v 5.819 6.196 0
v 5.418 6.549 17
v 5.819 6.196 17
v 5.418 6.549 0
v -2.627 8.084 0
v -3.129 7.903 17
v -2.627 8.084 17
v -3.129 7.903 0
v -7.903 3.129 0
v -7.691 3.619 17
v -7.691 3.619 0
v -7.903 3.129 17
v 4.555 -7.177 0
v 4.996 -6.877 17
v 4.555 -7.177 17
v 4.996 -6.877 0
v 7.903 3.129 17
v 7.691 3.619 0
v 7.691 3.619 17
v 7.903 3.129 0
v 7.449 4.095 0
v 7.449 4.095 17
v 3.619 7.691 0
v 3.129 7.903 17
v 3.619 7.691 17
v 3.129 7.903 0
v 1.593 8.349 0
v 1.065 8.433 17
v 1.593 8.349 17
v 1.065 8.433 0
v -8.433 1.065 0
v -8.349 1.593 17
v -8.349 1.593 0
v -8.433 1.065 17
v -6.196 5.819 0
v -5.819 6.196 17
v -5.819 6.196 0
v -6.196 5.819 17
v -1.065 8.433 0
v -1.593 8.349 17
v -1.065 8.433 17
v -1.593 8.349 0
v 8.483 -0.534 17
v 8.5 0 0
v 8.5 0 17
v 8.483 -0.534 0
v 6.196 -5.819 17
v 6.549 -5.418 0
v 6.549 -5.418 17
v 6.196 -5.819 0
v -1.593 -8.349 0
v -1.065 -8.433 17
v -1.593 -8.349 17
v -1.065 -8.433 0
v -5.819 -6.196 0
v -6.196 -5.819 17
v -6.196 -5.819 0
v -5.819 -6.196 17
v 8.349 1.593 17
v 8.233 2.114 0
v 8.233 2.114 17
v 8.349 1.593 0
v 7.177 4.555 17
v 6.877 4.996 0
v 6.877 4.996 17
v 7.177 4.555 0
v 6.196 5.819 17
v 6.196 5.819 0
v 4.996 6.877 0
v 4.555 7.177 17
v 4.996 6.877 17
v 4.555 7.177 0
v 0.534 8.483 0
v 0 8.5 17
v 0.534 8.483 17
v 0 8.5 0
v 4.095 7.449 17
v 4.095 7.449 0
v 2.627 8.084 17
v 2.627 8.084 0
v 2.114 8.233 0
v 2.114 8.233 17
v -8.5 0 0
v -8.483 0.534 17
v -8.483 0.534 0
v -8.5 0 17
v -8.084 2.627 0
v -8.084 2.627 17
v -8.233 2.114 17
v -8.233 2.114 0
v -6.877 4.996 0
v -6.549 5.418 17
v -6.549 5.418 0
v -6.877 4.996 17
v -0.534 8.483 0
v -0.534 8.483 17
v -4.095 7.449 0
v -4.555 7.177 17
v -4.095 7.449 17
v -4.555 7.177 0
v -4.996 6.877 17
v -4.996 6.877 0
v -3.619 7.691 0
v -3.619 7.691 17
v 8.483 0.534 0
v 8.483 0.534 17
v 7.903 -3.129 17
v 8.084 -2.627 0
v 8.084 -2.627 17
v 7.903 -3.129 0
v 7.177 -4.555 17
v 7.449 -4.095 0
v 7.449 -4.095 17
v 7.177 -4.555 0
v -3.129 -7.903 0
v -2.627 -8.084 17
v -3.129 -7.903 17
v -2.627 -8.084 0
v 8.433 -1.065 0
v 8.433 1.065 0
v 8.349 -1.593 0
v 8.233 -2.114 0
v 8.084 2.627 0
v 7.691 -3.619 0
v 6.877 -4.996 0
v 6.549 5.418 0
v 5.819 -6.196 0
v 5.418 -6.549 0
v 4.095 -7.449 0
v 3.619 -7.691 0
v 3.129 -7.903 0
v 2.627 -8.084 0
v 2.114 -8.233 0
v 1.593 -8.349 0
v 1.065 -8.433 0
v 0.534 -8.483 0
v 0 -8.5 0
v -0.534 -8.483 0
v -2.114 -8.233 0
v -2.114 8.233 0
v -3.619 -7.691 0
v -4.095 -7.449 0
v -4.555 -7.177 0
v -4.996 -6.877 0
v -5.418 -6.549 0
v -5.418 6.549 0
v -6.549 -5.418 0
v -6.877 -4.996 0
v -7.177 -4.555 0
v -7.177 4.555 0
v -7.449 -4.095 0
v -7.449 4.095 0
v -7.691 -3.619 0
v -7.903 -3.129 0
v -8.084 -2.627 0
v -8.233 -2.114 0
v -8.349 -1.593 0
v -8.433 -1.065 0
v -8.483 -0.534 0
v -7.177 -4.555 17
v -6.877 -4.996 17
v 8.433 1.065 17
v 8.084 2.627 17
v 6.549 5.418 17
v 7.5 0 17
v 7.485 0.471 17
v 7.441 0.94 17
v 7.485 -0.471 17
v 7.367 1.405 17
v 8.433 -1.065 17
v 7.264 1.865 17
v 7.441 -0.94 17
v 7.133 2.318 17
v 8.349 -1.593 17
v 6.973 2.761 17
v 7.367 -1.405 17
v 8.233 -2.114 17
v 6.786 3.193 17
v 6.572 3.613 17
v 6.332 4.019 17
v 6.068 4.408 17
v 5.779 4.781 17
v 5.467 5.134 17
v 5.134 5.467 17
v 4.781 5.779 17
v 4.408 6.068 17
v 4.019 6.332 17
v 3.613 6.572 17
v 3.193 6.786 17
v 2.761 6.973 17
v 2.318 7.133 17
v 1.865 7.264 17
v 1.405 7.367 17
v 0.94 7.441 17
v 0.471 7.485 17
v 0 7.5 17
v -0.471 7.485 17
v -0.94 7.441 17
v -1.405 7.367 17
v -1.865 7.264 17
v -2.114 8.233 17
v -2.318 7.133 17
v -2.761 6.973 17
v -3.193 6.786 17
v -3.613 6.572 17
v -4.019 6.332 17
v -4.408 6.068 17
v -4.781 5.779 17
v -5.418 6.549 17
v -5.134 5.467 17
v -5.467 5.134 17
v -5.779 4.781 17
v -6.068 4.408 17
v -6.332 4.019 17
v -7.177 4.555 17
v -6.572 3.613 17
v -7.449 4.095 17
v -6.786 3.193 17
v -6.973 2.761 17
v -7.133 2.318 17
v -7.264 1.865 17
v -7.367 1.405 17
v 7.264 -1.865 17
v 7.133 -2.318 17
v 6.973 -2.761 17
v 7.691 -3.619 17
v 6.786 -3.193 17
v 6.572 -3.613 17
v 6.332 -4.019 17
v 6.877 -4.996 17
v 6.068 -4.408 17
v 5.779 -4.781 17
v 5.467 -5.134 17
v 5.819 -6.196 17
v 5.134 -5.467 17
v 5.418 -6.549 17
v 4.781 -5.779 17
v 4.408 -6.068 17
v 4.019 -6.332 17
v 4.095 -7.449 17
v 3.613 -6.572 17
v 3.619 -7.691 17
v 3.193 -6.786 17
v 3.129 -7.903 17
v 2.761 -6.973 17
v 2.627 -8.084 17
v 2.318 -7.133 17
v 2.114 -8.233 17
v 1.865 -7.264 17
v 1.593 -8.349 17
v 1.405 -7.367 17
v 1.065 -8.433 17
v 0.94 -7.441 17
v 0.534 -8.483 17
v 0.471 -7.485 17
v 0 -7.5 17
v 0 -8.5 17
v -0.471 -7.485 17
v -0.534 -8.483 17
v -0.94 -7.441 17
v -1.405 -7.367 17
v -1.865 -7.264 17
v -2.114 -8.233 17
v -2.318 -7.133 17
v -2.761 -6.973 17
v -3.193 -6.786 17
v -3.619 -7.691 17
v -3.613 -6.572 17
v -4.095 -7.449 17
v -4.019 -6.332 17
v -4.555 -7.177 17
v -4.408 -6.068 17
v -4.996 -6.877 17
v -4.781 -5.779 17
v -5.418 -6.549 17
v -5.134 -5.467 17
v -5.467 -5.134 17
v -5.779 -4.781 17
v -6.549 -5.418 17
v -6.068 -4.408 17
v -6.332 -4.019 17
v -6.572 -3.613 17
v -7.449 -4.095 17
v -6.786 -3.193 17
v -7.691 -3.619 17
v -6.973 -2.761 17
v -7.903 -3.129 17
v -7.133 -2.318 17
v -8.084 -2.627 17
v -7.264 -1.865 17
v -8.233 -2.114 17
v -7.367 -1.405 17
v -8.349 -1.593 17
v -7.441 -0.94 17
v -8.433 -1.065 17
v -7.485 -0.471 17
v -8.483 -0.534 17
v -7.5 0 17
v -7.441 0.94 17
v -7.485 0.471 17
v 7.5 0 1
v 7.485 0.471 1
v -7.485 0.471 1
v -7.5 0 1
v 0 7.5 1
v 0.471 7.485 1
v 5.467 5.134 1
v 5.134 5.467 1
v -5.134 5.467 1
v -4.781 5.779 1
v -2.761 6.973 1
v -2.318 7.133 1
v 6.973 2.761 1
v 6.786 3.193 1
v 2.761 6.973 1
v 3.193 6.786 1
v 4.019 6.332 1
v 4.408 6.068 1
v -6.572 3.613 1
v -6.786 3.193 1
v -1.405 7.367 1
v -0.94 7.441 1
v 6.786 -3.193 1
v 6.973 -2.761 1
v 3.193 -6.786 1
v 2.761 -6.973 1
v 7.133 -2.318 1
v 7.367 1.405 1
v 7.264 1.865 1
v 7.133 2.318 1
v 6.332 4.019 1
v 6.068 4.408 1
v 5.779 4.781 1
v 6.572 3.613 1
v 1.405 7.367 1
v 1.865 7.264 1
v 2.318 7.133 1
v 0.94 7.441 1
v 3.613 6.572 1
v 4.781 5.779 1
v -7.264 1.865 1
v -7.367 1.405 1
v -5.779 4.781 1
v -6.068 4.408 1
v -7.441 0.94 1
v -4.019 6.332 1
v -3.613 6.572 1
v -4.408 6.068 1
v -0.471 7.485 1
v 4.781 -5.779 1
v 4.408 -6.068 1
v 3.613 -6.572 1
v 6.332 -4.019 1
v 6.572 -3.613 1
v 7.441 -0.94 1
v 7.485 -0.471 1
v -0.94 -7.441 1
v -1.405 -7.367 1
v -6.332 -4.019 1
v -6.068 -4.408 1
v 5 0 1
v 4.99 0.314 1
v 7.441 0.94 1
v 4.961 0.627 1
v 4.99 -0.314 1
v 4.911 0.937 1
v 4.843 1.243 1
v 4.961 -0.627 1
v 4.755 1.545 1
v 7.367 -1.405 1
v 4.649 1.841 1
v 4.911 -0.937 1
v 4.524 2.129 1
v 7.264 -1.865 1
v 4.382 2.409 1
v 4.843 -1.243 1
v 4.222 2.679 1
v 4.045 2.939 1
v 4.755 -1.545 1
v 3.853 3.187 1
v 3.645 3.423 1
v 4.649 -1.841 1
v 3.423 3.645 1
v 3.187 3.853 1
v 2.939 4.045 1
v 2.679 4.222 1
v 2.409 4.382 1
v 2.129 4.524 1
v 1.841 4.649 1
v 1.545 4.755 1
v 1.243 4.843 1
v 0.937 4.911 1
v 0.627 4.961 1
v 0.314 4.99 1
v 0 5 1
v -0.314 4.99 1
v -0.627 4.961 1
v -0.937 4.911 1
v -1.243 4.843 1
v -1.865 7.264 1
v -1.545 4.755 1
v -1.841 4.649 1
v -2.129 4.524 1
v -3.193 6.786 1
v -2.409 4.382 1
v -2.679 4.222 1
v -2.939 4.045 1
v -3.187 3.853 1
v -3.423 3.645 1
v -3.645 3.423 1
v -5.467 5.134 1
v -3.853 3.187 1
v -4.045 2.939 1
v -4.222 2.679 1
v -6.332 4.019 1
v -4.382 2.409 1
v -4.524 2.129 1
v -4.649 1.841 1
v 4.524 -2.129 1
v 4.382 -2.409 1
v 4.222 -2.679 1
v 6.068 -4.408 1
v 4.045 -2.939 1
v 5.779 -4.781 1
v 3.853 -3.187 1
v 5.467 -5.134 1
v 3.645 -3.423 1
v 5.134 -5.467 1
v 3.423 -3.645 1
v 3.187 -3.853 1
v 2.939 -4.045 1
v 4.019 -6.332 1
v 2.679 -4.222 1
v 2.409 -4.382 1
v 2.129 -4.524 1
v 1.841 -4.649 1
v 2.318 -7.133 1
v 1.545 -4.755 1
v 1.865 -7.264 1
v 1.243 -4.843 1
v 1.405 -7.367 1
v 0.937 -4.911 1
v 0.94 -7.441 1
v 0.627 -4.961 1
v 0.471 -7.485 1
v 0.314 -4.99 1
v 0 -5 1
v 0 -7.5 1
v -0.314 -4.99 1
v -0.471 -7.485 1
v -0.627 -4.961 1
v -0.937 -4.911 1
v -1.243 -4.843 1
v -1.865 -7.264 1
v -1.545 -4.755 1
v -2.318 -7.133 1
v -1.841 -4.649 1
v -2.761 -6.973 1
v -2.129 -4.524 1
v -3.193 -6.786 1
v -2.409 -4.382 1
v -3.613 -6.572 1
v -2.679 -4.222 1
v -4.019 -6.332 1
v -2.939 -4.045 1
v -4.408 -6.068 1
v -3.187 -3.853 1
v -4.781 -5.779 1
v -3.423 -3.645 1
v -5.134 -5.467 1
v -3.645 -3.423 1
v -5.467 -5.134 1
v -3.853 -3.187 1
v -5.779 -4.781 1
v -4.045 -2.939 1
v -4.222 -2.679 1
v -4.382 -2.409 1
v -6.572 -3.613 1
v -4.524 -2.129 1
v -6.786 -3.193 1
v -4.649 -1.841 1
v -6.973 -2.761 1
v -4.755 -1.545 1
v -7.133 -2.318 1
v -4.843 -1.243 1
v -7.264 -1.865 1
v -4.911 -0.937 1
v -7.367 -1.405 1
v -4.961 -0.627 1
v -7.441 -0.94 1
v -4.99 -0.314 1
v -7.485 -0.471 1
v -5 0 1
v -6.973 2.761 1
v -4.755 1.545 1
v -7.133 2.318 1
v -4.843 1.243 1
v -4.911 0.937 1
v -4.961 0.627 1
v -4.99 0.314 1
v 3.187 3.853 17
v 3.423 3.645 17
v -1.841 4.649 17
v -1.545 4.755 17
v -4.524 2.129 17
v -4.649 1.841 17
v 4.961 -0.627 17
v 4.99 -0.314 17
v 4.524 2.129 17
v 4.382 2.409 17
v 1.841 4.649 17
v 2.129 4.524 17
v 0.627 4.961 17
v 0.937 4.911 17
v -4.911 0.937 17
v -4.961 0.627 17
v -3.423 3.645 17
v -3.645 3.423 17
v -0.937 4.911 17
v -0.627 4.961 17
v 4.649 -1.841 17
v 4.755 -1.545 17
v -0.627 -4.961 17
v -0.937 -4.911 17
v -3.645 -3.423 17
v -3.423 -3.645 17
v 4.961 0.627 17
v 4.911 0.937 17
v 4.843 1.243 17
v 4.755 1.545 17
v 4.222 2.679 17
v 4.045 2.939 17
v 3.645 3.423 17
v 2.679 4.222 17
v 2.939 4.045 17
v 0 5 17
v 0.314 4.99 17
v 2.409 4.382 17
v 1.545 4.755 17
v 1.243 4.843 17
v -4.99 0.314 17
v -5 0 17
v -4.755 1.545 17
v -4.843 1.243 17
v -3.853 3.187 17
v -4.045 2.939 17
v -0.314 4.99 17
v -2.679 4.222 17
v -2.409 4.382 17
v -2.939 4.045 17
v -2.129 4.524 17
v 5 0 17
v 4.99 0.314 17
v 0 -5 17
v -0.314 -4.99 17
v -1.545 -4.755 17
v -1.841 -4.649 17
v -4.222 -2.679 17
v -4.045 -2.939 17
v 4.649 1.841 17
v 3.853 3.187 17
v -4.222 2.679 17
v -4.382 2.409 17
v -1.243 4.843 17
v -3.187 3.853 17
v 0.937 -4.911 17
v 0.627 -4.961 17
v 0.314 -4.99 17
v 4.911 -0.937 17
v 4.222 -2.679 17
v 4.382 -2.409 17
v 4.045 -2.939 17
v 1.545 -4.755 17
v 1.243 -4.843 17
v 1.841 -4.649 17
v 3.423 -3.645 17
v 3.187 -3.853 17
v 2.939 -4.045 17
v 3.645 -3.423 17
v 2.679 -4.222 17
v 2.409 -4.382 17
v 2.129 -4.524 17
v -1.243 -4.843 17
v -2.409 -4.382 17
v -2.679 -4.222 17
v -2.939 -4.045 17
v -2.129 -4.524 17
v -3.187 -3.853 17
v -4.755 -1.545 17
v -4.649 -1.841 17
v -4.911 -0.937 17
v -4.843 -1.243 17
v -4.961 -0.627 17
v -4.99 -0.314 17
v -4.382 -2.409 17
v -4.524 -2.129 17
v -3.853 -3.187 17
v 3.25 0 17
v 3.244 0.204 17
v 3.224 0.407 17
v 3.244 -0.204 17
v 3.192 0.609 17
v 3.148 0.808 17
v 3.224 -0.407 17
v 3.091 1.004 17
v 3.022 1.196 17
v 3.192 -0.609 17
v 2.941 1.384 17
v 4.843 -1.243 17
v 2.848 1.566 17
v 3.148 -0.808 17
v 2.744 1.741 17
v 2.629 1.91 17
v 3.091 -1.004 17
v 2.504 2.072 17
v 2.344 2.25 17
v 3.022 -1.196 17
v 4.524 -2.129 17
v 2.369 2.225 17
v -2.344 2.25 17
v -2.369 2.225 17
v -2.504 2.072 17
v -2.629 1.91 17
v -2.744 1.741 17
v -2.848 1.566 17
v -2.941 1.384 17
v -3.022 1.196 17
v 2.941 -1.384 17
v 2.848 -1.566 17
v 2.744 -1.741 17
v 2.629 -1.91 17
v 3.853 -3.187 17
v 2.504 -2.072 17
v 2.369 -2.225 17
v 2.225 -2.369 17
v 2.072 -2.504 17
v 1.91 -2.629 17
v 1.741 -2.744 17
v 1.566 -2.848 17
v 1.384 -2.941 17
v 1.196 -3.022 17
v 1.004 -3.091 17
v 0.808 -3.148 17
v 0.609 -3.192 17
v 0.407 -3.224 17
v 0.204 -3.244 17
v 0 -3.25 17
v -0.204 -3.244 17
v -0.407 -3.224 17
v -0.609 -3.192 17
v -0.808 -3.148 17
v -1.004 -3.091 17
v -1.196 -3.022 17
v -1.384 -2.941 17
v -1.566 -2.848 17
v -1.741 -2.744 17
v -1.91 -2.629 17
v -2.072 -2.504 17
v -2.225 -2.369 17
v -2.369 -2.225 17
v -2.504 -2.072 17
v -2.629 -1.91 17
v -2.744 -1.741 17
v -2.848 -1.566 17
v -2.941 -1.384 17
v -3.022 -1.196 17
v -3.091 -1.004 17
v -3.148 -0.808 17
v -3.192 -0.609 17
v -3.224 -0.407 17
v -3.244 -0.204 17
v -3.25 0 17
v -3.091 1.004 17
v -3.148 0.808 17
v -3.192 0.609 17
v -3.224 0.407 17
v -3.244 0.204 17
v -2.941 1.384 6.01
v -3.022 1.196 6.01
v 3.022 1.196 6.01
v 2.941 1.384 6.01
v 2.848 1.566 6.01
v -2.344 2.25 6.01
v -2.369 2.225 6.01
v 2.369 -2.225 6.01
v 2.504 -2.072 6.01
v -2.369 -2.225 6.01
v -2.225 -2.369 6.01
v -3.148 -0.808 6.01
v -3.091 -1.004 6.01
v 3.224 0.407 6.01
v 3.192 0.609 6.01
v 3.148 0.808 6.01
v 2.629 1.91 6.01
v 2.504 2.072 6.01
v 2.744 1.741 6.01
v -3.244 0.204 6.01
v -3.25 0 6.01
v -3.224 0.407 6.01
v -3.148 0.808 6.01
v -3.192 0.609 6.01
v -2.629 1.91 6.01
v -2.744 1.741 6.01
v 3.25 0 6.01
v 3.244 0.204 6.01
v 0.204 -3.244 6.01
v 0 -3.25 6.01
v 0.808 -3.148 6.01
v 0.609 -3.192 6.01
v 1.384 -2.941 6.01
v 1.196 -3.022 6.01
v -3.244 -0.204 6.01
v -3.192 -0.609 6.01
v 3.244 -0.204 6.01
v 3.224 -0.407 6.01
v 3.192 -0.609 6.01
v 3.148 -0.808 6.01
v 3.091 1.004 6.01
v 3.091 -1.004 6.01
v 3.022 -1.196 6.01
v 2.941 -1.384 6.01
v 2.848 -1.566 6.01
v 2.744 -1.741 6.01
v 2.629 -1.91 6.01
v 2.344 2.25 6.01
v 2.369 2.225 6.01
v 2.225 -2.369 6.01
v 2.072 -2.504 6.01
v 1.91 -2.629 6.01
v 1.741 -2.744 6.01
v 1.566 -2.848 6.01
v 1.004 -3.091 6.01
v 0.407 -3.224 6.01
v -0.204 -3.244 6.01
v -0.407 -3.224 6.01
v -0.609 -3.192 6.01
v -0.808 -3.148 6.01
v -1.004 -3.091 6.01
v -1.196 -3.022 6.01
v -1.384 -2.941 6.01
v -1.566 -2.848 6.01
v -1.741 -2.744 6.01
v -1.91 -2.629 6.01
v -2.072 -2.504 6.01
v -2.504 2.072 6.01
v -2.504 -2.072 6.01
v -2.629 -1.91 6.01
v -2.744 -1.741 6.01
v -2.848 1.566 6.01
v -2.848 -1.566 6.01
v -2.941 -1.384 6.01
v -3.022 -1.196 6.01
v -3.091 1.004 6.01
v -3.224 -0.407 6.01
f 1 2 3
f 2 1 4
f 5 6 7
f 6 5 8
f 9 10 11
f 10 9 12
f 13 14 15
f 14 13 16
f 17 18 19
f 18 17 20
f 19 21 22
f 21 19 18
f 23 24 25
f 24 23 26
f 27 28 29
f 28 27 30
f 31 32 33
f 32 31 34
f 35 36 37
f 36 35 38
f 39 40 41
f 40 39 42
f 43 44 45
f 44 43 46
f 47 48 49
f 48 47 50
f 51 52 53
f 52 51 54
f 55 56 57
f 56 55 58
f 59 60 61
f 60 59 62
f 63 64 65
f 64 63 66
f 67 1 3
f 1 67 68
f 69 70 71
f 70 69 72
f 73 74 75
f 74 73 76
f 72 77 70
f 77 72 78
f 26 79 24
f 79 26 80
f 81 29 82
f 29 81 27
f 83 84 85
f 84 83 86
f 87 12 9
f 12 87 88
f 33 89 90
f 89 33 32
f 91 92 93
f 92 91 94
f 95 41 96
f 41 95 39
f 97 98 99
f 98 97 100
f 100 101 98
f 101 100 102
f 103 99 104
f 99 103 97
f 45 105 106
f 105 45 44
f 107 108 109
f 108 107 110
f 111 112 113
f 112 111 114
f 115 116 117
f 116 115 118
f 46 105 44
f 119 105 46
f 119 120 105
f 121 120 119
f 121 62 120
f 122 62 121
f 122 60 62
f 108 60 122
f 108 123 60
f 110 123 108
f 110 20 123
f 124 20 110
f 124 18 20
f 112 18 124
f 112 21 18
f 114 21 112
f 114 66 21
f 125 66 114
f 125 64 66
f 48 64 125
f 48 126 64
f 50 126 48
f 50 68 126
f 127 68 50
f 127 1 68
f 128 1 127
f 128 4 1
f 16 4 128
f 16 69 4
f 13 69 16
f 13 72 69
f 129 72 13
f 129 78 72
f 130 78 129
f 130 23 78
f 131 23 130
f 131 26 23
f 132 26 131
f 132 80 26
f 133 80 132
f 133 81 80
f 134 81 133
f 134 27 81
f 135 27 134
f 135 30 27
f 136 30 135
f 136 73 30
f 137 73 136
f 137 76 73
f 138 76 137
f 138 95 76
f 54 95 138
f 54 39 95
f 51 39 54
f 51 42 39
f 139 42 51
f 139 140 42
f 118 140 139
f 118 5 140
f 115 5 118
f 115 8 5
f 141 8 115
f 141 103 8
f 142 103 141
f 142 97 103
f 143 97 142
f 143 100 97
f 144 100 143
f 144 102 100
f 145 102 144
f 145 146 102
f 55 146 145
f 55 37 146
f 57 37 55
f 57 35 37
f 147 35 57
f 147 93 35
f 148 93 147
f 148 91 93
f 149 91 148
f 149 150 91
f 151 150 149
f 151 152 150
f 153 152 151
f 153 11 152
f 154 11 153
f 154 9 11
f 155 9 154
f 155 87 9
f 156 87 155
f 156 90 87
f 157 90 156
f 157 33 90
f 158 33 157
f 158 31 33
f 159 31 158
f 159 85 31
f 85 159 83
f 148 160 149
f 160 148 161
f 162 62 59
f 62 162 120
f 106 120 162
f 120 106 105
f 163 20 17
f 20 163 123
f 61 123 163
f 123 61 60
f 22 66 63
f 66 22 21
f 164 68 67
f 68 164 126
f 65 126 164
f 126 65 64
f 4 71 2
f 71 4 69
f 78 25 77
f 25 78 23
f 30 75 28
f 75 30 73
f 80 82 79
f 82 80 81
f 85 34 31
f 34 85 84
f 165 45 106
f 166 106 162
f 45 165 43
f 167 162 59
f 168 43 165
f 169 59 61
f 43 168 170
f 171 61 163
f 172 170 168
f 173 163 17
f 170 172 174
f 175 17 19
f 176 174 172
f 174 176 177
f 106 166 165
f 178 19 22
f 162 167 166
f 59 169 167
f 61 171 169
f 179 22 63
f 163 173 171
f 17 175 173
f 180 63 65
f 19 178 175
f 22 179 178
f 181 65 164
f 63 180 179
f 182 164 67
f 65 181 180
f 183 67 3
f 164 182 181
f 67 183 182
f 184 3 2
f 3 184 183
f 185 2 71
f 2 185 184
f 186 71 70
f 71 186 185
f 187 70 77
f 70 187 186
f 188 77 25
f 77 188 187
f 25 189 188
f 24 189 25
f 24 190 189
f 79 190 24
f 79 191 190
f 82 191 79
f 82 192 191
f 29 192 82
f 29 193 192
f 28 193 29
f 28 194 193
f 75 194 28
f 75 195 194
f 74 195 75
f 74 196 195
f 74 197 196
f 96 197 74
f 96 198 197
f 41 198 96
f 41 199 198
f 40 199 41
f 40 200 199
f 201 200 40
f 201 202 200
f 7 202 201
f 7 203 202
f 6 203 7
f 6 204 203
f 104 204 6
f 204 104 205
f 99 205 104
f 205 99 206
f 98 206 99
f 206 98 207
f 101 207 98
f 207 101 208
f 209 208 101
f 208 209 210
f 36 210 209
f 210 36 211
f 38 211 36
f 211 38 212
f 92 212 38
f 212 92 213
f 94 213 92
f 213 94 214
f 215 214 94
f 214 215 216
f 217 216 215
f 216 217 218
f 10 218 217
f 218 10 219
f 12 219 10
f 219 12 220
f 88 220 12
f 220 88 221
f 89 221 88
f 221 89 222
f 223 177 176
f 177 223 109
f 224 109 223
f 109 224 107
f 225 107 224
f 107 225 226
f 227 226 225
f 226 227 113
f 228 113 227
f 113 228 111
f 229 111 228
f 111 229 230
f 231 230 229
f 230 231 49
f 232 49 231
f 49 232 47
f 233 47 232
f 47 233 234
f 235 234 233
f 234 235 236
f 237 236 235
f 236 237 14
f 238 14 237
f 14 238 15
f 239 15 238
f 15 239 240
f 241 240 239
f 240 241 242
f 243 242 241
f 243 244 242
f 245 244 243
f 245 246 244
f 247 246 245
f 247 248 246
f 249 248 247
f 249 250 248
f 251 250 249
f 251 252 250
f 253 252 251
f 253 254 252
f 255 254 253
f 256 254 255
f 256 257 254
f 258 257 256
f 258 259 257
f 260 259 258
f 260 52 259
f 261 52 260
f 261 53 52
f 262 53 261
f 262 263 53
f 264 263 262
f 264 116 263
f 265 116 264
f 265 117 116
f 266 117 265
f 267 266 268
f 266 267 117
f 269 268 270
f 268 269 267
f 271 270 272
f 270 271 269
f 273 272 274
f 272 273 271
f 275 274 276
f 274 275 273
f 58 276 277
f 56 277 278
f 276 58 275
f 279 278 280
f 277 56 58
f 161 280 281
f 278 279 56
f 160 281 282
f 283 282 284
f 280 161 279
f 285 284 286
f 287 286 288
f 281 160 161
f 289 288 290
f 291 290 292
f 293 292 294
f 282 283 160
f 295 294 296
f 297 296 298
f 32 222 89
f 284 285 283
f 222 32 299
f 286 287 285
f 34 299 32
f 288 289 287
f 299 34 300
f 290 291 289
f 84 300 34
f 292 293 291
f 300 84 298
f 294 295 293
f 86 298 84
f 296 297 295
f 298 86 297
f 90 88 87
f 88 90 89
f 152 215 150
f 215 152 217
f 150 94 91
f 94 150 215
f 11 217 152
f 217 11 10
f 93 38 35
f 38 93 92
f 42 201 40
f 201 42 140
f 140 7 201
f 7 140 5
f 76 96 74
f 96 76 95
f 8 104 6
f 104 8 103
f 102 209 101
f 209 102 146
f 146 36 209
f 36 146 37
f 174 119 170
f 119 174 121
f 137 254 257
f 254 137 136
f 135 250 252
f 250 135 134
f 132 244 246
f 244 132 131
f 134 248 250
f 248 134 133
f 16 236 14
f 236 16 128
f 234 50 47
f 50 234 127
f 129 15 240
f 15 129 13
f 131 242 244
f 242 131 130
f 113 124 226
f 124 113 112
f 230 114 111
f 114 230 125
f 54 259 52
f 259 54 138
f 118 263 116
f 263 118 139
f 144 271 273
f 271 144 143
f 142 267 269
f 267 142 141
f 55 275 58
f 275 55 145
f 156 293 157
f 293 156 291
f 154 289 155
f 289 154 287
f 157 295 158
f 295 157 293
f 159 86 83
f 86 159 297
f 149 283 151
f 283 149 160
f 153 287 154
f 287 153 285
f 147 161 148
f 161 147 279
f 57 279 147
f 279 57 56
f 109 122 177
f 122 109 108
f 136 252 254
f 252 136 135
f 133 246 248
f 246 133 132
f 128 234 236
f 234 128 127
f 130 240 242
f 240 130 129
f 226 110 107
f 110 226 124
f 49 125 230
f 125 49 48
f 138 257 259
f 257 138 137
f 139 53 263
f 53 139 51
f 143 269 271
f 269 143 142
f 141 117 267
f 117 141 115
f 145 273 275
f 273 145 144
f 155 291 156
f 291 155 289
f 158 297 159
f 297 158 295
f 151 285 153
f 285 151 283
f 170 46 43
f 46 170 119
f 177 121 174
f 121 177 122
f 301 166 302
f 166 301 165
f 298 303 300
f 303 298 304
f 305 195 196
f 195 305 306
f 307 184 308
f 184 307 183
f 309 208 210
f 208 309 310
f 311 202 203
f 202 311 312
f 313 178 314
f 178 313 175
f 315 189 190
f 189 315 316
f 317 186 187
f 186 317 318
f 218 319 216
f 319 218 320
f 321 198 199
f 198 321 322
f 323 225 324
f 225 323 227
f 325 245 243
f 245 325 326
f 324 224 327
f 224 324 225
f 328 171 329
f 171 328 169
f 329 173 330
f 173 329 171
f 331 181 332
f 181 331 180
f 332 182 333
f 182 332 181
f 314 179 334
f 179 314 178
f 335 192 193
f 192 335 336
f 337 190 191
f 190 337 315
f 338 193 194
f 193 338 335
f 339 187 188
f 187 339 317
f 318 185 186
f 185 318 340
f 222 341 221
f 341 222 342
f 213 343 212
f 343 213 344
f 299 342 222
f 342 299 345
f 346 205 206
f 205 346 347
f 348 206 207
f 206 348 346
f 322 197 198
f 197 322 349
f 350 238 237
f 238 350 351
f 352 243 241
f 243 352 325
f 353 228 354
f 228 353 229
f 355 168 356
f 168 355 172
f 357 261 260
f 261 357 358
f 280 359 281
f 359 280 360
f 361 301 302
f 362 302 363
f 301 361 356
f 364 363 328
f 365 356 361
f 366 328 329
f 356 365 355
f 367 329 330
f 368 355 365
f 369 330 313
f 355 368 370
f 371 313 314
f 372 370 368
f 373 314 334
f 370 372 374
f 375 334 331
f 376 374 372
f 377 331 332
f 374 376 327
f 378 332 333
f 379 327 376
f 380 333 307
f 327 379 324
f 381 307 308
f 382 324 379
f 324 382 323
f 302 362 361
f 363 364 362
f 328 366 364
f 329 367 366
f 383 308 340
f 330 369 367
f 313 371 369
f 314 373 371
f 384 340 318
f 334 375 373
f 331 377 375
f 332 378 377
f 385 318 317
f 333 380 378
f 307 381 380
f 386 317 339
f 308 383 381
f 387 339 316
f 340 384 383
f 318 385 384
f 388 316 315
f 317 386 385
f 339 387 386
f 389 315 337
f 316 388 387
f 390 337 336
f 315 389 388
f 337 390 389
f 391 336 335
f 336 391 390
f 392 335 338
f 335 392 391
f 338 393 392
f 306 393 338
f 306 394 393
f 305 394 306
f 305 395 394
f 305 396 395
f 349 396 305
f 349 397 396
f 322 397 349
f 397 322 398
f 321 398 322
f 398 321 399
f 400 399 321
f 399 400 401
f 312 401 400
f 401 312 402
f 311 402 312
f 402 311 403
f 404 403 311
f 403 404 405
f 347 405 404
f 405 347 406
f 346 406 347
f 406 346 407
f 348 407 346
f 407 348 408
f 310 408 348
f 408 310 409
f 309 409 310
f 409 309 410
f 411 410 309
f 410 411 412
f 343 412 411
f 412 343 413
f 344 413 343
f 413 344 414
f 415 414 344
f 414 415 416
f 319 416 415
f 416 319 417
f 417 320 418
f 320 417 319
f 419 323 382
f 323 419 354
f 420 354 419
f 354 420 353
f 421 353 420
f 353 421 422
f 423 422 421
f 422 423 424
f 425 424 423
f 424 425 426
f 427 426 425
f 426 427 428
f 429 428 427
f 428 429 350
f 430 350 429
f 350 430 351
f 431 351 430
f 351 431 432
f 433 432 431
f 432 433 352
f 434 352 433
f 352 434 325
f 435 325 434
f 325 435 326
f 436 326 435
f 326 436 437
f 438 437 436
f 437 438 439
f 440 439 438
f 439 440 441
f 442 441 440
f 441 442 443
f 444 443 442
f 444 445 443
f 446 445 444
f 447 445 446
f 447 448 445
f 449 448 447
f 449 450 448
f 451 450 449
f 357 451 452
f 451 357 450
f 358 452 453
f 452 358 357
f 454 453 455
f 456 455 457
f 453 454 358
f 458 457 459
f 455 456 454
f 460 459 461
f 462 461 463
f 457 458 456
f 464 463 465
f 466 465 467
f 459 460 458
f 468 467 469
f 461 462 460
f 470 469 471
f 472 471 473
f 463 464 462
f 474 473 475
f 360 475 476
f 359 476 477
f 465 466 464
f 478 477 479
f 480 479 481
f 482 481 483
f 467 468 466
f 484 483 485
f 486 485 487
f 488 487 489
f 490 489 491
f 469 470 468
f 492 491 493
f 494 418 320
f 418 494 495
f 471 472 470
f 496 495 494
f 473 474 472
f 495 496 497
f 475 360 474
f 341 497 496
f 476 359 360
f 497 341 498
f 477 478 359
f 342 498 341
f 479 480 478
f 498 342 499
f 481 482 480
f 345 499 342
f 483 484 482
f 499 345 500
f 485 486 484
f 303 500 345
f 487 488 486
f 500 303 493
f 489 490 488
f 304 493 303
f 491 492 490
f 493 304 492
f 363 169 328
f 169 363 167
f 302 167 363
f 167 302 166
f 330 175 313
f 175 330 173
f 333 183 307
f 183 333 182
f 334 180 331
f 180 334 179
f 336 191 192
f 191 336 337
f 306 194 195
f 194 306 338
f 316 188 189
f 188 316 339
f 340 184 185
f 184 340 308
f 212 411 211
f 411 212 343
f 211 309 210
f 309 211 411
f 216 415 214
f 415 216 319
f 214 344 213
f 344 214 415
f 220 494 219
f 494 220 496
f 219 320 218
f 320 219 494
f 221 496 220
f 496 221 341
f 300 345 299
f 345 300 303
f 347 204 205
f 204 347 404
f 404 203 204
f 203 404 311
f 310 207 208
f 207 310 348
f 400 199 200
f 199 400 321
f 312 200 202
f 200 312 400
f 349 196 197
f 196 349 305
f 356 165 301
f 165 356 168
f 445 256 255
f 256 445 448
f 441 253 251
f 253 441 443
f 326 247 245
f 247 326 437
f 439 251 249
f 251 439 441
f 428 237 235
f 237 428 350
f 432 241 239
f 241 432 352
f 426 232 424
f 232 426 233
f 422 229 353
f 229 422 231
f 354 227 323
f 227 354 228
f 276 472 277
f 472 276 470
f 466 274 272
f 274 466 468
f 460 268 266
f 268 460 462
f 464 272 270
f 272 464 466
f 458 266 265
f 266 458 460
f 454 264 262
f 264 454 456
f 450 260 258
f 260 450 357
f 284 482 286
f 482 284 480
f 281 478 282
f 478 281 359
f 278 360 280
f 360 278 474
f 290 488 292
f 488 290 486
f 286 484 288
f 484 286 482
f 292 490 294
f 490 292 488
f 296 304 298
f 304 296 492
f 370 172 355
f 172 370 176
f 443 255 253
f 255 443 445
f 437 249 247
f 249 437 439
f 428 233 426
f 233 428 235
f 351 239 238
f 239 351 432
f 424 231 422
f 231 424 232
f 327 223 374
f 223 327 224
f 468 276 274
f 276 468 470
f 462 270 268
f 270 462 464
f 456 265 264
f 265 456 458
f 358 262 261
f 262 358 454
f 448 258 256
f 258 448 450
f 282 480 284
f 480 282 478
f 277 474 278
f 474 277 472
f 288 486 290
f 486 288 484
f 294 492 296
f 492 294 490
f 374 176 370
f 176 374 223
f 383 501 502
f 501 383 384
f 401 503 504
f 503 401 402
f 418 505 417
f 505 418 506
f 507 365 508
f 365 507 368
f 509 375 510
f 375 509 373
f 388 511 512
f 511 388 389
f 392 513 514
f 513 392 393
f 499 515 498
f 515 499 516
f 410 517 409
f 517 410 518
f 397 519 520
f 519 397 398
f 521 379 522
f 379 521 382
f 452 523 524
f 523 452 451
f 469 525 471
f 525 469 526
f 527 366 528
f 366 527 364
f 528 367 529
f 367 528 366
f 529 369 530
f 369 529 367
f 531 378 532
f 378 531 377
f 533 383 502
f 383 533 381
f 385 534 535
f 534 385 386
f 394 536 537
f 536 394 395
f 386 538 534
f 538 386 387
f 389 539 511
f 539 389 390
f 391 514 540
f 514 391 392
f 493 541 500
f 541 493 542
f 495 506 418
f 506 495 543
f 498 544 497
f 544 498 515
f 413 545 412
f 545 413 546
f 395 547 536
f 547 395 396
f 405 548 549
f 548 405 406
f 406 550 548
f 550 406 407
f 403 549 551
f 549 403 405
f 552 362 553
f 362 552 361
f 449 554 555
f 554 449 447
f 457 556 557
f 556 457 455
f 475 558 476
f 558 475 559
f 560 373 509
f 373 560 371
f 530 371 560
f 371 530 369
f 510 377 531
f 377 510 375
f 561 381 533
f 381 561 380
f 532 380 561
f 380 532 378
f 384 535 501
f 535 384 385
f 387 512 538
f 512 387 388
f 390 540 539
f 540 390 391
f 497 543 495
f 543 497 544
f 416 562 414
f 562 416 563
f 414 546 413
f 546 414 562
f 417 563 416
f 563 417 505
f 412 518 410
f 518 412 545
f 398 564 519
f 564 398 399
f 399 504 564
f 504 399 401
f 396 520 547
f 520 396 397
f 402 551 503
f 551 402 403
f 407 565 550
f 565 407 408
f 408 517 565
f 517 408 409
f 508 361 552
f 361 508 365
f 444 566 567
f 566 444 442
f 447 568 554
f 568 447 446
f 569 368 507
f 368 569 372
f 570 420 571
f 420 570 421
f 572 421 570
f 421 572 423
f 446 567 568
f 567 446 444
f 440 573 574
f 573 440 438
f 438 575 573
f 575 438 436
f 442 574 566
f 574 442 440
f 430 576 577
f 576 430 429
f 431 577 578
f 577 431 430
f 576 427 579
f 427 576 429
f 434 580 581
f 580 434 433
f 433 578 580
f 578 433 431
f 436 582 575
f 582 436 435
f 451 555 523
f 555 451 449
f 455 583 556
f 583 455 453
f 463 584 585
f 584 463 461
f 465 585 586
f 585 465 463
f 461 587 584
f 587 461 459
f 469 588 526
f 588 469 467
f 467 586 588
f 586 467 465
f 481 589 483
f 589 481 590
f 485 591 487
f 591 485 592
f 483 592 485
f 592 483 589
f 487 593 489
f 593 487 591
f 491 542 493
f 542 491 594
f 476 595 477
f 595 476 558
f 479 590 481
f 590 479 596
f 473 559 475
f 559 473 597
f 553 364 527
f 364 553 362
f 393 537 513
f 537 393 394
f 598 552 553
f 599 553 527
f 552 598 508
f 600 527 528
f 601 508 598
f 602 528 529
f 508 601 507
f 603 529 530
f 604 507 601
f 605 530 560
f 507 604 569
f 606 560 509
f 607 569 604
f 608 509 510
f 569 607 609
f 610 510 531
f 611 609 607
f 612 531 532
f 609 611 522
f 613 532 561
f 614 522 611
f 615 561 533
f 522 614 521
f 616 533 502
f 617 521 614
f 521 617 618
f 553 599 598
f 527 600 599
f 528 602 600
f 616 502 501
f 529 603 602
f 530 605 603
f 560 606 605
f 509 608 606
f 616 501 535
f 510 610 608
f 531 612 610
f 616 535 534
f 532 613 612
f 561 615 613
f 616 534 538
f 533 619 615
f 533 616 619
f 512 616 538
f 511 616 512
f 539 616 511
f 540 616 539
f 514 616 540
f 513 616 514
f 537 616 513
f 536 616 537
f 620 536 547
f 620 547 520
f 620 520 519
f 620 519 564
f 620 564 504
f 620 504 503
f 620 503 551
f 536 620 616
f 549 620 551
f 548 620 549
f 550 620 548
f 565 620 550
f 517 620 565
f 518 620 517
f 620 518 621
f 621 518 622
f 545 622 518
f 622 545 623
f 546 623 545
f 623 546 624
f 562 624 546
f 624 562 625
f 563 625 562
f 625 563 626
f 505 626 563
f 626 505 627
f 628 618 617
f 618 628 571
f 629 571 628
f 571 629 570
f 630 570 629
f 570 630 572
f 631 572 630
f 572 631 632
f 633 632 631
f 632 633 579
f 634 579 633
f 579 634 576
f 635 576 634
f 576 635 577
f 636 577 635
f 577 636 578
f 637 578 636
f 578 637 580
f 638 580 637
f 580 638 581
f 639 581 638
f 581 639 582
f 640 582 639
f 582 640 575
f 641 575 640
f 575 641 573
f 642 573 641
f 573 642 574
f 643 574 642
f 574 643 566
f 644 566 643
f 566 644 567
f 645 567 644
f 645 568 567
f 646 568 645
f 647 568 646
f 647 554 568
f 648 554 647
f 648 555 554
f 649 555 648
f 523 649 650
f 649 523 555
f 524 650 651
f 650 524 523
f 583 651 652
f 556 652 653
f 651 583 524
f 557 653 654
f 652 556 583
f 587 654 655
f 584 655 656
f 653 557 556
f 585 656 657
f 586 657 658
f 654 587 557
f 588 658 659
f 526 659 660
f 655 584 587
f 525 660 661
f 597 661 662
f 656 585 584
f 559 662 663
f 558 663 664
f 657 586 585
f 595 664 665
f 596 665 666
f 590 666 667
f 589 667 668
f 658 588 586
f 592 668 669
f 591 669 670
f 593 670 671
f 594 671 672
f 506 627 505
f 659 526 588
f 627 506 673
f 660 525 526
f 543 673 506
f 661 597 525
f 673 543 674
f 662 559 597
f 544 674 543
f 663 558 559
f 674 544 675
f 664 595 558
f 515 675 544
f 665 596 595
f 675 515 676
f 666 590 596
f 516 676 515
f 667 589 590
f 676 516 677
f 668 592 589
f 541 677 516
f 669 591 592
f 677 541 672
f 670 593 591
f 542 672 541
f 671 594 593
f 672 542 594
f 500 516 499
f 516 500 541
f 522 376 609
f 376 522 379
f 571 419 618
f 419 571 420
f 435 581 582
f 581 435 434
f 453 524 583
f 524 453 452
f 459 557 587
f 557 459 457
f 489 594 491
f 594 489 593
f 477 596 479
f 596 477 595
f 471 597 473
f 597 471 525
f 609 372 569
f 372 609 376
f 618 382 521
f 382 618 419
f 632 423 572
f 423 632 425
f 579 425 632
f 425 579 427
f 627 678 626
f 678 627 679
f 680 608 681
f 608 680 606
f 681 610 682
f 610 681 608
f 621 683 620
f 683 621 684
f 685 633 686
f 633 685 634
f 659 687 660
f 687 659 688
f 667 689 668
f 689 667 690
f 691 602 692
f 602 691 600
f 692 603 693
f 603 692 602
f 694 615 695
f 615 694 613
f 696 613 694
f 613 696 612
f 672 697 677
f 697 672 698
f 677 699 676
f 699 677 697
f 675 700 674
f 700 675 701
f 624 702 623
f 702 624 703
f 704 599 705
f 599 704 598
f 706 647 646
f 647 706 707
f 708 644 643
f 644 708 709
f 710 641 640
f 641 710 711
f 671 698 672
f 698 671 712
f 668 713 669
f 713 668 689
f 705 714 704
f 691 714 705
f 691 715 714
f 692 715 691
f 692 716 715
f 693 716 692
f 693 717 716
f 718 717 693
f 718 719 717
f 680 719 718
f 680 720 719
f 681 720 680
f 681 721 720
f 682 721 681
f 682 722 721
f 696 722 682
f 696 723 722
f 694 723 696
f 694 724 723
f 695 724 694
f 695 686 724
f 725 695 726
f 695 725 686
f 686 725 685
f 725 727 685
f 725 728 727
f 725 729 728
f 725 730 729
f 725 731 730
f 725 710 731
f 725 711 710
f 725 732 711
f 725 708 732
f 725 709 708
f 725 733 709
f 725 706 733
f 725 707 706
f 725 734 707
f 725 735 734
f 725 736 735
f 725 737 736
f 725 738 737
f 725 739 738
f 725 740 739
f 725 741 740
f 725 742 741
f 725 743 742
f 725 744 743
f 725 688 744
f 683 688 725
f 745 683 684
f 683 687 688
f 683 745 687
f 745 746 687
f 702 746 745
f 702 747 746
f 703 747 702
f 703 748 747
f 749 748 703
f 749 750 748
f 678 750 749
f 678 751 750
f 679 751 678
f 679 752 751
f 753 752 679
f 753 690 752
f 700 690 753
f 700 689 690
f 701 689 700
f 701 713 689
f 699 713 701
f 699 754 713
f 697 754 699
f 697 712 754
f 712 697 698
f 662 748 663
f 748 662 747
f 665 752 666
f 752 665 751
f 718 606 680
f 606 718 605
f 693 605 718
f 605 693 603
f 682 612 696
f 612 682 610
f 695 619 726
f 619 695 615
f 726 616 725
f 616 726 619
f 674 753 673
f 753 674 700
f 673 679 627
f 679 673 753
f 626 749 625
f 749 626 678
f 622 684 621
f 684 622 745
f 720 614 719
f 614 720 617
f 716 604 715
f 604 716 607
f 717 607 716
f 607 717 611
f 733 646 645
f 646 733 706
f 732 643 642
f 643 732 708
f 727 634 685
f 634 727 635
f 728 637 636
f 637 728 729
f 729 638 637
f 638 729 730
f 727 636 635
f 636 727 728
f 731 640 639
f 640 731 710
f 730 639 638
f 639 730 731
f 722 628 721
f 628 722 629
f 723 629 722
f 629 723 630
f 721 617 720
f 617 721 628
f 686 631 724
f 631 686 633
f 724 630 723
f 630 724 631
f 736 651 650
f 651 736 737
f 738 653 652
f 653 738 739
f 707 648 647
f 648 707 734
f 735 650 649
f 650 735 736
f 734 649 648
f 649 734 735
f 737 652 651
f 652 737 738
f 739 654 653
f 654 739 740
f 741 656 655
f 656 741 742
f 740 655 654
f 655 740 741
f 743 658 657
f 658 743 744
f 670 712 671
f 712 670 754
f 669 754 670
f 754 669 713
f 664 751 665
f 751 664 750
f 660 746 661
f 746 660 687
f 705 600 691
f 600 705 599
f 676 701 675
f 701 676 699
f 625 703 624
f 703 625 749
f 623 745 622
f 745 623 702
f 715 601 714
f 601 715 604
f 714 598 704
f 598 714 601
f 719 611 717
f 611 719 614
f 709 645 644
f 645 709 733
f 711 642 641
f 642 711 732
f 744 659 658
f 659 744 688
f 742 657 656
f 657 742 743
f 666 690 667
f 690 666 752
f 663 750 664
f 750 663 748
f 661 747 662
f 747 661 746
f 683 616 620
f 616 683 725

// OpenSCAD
/*
 Simple knob for rotary encoder.
*/
$fn = 100;

height = 17;
diameter = 17;
thickness = 2;
push_btn = 6;
d_shaft_diameter = 6.5;
d_width = 1;


// Outer wall
difference() {
    // ADD
    union() {
        cylinder(height, diameter / 2, diameter / 2);
    }

    // SUBTRACT
    union() {
        translate([0, 0, 1])
        cylinder(height + 0.01, (diameter / 2) - (thickness / 2), (diameter / 2 )- (thickness / 2));
    }
}

// Inner wall
difference() {
    // ADD
    union() {
        dia = d_shaft_diameter - 1.5;
        cylinder(height, dia, dia);
    }
    
    // SUBTRACT
    union() {
        translate([0, 0, push_btn + 0.01])
        cylinder(height - push_btn, d_shaft_diameter / 2, d_shaft_diameter / 2);
    }
}
  
    

// Add shaft holder
union() {
    translate([-d_shaft_diameter / 2, d_shaft_diameter / 2 - d_width, 0])
    cube([d_shaft_diameter, d_width, height]);
}
